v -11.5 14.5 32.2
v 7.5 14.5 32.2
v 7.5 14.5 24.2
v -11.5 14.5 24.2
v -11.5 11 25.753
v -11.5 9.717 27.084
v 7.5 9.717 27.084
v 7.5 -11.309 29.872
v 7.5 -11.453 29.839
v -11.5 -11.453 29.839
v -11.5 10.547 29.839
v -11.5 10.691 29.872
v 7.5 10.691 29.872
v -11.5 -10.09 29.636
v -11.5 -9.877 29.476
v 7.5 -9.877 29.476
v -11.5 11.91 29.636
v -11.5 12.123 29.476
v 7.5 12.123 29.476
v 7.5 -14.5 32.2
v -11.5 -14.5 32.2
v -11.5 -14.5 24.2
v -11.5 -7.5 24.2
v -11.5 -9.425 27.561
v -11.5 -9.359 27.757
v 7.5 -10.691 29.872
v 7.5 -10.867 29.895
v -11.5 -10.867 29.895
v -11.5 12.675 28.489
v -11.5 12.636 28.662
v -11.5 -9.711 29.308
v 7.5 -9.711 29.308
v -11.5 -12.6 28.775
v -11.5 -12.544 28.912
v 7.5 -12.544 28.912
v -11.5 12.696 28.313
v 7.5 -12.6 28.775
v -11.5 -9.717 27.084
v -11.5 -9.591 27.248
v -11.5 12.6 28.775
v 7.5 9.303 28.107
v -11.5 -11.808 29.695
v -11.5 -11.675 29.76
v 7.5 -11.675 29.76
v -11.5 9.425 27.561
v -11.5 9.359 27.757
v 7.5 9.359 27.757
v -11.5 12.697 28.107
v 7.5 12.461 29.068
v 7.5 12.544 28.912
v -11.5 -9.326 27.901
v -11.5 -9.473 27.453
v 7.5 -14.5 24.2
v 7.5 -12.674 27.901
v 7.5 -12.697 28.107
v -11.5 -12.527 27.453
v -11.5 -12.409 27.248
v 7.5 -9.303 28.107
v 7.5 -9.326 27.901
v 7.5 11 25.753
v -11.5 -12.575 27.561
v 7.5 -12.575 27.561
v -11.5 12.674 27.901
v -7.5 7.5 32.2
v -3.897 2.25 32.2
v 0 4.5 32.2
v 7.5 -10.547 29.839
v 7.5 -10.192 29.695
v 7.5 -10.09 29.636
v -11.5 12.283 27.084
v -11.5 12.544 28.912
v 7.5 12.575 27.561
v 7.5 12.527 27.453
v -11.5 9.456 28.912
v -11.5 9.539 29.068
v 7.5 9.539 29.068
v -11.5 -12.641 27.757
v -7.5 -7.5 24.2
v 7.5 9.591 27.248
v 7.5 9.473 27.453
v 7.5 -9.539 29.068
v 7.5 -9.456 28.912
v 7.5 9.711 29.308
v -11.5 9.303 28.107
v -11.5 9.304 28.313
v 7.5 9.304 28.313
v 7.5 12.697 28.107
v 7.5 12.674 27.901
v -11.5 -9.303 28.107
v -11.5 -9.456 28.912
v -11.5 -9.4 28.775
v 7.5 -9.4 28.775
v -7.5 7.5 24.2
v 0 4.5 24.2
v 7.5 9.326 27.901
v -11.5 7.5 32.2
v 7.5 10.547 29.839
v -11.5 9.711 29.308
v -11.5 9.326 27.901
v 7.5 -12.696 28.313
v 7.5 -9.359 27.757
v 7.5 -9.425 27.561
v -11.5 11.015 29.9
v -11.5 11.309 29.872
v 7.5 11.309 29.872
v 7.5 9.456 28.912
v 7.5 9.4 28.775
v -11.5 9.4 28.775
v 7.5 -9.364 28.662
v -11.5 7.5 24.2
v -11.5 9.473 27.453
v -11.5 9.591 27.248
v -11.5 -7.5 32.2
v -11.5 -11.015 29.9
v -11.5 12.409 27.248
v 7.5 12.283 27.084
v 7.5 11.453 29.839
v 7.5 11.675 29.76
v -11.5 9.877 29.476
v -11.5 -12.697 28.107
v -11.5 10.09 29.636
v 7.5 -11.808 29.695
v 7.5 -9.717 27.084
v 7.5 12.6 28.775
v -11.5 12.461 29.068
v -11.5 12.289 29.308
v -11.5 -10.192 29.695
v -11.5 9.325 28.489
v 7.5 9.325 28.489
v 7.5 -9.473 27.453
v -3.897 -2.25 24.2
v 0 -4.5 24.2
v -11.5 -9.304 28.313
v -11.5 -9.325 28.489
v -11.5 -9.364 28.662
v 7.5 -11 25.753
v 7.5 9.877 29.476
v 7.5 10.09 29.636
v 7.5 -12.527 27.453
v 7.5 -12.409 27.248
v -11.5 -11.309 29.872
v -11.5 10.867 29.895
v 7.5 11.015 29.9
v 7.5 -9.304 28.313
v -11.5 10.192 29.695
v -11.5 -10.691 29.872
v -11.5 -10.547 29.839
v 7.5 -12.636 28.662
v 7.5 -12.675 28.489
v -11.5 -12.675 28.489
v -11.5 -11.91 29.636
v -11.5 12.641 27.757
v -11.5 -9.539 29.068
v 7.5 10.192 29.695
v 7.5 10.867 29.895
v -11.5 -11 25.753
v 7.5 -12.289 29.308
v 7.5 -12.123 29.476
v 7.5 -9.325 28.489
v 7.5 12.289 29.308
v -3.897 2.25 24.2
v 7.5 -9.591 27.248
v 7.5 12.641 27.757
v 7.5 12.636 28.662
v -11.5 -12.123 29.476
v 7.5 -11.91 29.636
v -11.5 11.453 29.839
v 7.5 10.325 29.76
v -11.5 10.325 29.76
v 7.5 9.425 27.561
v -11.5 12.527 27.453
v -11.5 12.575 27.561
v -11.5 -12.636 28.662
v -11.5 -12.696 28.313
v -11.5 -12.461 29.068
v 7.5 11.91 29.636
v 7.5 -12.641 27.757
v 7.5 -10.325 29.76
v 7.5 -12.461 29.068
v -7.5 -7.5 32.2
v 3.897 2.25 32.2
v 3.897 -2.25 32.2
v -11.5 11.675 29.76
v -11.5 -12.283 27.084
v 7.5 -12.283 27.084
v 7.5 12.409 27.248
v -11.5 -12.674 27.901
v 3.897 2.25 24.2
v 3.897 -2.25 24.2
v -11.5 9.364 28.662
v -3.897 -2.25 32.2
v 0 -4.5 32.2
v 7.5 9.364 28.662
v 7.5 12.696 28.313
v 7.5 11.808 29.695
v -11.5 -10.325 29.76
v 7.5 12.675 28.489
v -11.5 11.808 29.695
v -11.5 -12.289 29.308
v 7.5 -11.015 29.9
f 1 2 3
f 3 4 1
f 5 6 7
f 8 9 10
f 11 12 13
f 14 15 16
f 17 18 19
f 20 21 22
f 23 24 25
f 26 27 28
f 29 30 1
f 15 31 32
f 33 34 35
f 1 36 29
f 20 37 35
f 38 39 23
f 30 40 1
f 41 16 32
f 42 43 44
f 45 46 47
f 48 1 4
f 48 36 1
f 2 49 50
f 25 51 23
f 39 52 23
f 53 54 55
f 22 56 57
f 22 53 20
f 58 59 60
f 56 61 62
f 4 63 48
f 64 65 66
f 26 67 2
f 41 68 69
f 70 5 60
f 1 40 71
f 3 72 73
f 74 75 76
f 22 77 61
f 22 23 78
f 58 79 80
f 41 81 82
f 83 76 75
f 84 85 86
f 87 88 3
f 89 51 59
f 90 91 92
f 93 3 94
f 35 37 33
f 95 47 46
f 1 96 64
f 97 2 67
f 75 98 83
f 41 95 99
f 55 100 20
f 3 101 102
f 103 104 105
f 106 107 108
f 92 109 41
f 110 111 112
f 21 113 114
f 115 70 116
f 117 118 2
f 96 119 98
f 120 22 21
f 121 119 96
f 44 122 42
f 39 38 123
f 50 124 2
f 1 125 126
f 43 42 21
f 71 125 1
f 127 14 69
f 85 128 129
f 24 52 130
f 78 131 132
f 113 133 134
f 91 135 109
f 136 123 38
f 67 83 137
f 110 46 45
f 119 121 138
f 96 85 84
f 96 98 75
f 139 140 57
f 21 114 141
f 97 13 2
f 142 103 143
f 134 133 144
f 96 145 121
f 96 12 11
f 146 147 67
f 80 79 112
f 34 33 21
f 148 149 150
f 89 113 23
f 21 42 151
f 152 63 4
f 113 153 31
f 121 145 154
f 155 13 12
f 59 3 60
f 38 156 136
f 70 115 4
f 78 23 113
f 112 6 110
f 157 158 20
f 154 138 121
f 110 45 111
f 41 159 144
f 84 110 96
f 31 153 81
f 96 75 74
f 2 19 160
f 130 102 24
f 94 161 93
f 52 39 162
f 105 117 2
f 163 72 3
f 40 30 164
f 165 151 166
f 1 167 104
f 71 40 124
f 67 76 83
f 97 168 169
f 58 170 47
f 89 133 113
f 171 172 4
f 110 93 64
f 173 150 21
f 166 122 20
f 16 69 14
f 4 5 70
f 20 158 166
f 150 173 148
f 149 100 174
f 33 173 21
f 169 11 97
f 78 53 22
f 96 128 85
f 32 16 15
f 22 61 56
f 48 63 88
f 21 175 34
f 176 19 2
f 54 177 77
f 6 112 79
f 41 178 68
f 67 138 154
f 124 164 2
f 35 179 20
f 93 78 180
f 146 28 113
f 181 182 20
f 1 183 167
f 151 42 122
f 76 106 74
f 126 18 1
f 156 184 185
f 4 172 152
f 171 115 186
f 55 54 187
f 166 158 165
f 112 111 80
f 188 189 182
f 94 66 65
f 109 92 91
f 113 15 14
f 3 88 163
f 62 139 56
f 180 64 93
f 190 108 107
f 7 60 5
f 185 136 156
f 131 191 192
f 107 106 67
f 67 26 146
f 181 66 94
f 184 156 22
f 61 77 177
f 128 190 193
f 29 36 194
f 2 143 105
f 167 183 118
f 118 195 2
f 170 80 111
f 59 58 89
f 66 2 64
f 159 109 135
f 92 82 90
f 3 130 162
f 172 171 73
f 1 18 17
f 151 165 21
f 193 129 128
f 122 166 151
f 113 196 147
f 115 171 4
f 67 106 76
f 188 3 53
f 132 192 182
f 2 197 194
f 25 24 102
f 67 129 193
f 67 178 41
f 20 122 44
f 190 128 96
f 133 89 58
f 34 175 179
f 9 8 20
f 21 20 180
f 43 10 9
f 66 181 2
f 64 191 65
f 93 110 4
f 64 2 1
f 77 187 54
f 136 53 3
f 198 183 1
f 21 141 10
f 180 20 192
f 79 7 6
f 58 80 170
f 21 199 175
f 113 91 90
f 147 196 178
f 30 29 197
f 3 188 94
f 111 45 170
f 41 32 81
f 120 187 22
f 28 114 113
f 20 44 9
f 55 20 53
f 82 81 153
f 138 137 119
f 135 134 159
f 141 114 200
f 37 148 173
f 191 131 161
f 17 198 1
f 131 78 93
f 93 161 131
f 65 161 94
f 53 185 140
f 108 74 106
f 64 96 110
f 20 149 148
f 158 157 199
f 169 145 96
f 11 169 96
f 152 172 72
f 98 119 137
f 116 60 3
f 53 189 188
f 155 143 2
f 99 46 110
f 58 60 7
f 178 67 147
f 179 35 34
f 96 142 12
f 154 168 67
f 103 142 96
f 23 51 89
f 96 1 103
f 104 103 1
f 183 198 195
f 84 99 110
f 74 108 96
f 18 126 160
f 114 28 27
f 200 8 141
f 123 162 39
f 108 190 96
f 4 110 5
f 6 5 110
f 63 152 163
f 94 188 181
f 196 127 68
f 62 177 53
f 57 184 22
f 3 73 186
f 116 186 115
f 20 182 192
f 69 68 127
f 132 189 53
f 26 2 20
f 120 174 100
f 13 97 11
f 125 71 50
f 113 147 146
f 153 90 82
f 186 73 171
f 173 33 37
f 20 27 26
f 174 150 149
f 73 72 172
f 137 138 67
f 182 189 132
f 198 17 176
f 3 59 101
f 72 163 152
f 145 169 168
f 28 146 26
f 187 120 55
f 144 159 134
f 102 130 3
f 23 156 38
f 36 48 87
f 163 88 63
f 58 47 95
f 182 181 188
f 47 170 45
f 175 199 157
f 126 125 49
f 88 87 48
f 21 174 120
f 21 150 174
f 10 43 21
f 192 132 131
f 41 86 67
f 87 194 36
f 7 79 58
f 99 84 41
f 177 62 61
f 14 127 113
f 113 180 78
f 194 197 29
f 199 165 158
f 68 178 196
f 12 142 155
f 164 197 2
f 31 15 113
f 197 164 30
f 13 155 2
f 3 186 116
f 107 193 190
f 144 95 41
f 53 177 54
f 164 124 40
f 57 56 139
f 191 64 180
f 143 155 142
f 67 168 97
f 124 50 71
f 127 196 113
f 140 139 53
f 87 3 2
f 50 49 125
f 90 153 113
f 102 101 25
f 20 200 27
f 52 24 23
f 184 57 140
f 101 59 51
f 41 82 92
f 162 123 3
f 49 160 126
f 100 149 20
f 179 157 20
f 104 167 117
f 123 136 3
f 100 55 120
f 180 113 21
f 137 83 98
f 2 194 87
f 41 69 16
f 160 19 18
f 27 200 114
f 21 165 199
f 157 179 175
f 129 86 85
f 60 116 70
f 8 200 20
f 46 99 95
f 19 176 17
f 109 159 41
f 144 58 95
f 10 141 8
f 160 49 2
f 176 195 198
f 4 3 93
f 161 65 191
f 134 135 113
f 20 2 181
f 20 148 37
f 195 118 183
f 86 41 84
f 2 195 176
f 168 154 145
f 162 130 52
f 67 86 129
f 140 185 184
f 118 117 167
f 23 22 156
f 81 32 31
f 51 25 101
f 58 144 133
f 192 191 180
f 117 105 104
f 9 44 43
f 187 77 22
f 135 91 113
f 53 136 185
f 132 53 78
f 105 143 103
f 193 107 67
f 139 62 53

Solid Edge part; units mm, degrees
sketch "Sketch1" plane through (0, 0, 24.2) normal (0, 0, 1) x (1, 0, 0)
  line L0 (-11.5, 14.5) -> (7.5, 14.5)
  line L1 (7.5, 14.5) -> (7.5, 0)
  line L2 (7.5, -14.5) -> (7.5, 0)
  line L3 (-11.5, -14.5) -> (7.5, -14.5)
  line L4 (-11.5, -7.5) -> (-11.5, -14.5)
  line L5 (-11.5, -7.5) -> (-7.5, -7.5)
  line L6 (-7.5, -7.5) -> (-7.5, 0)
  line L7 (-7.5, 7.5) -> (-7.5, 0)
  line L8 (-11.5, 7.5) -> (-7.5, 7.5)
  line L9 (-11.5, 7.5) -> (-11.5, 14.5)
extrude "Protrusion1" add sketch "Sketch1" along normal blind 8
sketch "Sketch2" plane through (-11.5, -11, 28.2) normal (-1, 0, 0) x (0, 1, 0)
  line L0 (1.2229, 1.1809) -> (0, 2.4472)
  line L1 (0, 2.4472) -> (-1.2229, 1.1809)
  arc A0 (1.2229, 1.1809) -> (-1.2229, 1.1809) centre (0, 0) cw
  line L2 (23.2229, 1.1809) -> (22, 2.4472)
  line L3 (22, 2.4472) -> (20.7771, 1.1809)
  arc A1 (23.2229, 1.1809) -> (20.7771, 1.1809) centre (22, 0) cw
extrude "Cutout1" cut sketch "Sketch2" against normal through all
sketch "Sketch3" plane through (-2, 0, 24.2) normal (0, 0, -1) x (-1, 0, 0)
  line L0 (-5.8971, 2.25) -> (-5.8971, -2.25)
  line L1 (-5.8971, -2.25) -> (-2, -4.5)
  line L2 (-2, -4.5) -> (1.8971, -2.25)
  line L3 (1.8971, -2.25) -> (1.8971, 2.25)
  line L4 (1.8971, 2.25) -> (-2, 4.5)
  line L5 (-2, 4.5) -> (-5.8971, 2.25)
extrude "Cutout2" cut sketch "Sketch3" against normal through all
properties material "ABS Plastic, medium impact"
